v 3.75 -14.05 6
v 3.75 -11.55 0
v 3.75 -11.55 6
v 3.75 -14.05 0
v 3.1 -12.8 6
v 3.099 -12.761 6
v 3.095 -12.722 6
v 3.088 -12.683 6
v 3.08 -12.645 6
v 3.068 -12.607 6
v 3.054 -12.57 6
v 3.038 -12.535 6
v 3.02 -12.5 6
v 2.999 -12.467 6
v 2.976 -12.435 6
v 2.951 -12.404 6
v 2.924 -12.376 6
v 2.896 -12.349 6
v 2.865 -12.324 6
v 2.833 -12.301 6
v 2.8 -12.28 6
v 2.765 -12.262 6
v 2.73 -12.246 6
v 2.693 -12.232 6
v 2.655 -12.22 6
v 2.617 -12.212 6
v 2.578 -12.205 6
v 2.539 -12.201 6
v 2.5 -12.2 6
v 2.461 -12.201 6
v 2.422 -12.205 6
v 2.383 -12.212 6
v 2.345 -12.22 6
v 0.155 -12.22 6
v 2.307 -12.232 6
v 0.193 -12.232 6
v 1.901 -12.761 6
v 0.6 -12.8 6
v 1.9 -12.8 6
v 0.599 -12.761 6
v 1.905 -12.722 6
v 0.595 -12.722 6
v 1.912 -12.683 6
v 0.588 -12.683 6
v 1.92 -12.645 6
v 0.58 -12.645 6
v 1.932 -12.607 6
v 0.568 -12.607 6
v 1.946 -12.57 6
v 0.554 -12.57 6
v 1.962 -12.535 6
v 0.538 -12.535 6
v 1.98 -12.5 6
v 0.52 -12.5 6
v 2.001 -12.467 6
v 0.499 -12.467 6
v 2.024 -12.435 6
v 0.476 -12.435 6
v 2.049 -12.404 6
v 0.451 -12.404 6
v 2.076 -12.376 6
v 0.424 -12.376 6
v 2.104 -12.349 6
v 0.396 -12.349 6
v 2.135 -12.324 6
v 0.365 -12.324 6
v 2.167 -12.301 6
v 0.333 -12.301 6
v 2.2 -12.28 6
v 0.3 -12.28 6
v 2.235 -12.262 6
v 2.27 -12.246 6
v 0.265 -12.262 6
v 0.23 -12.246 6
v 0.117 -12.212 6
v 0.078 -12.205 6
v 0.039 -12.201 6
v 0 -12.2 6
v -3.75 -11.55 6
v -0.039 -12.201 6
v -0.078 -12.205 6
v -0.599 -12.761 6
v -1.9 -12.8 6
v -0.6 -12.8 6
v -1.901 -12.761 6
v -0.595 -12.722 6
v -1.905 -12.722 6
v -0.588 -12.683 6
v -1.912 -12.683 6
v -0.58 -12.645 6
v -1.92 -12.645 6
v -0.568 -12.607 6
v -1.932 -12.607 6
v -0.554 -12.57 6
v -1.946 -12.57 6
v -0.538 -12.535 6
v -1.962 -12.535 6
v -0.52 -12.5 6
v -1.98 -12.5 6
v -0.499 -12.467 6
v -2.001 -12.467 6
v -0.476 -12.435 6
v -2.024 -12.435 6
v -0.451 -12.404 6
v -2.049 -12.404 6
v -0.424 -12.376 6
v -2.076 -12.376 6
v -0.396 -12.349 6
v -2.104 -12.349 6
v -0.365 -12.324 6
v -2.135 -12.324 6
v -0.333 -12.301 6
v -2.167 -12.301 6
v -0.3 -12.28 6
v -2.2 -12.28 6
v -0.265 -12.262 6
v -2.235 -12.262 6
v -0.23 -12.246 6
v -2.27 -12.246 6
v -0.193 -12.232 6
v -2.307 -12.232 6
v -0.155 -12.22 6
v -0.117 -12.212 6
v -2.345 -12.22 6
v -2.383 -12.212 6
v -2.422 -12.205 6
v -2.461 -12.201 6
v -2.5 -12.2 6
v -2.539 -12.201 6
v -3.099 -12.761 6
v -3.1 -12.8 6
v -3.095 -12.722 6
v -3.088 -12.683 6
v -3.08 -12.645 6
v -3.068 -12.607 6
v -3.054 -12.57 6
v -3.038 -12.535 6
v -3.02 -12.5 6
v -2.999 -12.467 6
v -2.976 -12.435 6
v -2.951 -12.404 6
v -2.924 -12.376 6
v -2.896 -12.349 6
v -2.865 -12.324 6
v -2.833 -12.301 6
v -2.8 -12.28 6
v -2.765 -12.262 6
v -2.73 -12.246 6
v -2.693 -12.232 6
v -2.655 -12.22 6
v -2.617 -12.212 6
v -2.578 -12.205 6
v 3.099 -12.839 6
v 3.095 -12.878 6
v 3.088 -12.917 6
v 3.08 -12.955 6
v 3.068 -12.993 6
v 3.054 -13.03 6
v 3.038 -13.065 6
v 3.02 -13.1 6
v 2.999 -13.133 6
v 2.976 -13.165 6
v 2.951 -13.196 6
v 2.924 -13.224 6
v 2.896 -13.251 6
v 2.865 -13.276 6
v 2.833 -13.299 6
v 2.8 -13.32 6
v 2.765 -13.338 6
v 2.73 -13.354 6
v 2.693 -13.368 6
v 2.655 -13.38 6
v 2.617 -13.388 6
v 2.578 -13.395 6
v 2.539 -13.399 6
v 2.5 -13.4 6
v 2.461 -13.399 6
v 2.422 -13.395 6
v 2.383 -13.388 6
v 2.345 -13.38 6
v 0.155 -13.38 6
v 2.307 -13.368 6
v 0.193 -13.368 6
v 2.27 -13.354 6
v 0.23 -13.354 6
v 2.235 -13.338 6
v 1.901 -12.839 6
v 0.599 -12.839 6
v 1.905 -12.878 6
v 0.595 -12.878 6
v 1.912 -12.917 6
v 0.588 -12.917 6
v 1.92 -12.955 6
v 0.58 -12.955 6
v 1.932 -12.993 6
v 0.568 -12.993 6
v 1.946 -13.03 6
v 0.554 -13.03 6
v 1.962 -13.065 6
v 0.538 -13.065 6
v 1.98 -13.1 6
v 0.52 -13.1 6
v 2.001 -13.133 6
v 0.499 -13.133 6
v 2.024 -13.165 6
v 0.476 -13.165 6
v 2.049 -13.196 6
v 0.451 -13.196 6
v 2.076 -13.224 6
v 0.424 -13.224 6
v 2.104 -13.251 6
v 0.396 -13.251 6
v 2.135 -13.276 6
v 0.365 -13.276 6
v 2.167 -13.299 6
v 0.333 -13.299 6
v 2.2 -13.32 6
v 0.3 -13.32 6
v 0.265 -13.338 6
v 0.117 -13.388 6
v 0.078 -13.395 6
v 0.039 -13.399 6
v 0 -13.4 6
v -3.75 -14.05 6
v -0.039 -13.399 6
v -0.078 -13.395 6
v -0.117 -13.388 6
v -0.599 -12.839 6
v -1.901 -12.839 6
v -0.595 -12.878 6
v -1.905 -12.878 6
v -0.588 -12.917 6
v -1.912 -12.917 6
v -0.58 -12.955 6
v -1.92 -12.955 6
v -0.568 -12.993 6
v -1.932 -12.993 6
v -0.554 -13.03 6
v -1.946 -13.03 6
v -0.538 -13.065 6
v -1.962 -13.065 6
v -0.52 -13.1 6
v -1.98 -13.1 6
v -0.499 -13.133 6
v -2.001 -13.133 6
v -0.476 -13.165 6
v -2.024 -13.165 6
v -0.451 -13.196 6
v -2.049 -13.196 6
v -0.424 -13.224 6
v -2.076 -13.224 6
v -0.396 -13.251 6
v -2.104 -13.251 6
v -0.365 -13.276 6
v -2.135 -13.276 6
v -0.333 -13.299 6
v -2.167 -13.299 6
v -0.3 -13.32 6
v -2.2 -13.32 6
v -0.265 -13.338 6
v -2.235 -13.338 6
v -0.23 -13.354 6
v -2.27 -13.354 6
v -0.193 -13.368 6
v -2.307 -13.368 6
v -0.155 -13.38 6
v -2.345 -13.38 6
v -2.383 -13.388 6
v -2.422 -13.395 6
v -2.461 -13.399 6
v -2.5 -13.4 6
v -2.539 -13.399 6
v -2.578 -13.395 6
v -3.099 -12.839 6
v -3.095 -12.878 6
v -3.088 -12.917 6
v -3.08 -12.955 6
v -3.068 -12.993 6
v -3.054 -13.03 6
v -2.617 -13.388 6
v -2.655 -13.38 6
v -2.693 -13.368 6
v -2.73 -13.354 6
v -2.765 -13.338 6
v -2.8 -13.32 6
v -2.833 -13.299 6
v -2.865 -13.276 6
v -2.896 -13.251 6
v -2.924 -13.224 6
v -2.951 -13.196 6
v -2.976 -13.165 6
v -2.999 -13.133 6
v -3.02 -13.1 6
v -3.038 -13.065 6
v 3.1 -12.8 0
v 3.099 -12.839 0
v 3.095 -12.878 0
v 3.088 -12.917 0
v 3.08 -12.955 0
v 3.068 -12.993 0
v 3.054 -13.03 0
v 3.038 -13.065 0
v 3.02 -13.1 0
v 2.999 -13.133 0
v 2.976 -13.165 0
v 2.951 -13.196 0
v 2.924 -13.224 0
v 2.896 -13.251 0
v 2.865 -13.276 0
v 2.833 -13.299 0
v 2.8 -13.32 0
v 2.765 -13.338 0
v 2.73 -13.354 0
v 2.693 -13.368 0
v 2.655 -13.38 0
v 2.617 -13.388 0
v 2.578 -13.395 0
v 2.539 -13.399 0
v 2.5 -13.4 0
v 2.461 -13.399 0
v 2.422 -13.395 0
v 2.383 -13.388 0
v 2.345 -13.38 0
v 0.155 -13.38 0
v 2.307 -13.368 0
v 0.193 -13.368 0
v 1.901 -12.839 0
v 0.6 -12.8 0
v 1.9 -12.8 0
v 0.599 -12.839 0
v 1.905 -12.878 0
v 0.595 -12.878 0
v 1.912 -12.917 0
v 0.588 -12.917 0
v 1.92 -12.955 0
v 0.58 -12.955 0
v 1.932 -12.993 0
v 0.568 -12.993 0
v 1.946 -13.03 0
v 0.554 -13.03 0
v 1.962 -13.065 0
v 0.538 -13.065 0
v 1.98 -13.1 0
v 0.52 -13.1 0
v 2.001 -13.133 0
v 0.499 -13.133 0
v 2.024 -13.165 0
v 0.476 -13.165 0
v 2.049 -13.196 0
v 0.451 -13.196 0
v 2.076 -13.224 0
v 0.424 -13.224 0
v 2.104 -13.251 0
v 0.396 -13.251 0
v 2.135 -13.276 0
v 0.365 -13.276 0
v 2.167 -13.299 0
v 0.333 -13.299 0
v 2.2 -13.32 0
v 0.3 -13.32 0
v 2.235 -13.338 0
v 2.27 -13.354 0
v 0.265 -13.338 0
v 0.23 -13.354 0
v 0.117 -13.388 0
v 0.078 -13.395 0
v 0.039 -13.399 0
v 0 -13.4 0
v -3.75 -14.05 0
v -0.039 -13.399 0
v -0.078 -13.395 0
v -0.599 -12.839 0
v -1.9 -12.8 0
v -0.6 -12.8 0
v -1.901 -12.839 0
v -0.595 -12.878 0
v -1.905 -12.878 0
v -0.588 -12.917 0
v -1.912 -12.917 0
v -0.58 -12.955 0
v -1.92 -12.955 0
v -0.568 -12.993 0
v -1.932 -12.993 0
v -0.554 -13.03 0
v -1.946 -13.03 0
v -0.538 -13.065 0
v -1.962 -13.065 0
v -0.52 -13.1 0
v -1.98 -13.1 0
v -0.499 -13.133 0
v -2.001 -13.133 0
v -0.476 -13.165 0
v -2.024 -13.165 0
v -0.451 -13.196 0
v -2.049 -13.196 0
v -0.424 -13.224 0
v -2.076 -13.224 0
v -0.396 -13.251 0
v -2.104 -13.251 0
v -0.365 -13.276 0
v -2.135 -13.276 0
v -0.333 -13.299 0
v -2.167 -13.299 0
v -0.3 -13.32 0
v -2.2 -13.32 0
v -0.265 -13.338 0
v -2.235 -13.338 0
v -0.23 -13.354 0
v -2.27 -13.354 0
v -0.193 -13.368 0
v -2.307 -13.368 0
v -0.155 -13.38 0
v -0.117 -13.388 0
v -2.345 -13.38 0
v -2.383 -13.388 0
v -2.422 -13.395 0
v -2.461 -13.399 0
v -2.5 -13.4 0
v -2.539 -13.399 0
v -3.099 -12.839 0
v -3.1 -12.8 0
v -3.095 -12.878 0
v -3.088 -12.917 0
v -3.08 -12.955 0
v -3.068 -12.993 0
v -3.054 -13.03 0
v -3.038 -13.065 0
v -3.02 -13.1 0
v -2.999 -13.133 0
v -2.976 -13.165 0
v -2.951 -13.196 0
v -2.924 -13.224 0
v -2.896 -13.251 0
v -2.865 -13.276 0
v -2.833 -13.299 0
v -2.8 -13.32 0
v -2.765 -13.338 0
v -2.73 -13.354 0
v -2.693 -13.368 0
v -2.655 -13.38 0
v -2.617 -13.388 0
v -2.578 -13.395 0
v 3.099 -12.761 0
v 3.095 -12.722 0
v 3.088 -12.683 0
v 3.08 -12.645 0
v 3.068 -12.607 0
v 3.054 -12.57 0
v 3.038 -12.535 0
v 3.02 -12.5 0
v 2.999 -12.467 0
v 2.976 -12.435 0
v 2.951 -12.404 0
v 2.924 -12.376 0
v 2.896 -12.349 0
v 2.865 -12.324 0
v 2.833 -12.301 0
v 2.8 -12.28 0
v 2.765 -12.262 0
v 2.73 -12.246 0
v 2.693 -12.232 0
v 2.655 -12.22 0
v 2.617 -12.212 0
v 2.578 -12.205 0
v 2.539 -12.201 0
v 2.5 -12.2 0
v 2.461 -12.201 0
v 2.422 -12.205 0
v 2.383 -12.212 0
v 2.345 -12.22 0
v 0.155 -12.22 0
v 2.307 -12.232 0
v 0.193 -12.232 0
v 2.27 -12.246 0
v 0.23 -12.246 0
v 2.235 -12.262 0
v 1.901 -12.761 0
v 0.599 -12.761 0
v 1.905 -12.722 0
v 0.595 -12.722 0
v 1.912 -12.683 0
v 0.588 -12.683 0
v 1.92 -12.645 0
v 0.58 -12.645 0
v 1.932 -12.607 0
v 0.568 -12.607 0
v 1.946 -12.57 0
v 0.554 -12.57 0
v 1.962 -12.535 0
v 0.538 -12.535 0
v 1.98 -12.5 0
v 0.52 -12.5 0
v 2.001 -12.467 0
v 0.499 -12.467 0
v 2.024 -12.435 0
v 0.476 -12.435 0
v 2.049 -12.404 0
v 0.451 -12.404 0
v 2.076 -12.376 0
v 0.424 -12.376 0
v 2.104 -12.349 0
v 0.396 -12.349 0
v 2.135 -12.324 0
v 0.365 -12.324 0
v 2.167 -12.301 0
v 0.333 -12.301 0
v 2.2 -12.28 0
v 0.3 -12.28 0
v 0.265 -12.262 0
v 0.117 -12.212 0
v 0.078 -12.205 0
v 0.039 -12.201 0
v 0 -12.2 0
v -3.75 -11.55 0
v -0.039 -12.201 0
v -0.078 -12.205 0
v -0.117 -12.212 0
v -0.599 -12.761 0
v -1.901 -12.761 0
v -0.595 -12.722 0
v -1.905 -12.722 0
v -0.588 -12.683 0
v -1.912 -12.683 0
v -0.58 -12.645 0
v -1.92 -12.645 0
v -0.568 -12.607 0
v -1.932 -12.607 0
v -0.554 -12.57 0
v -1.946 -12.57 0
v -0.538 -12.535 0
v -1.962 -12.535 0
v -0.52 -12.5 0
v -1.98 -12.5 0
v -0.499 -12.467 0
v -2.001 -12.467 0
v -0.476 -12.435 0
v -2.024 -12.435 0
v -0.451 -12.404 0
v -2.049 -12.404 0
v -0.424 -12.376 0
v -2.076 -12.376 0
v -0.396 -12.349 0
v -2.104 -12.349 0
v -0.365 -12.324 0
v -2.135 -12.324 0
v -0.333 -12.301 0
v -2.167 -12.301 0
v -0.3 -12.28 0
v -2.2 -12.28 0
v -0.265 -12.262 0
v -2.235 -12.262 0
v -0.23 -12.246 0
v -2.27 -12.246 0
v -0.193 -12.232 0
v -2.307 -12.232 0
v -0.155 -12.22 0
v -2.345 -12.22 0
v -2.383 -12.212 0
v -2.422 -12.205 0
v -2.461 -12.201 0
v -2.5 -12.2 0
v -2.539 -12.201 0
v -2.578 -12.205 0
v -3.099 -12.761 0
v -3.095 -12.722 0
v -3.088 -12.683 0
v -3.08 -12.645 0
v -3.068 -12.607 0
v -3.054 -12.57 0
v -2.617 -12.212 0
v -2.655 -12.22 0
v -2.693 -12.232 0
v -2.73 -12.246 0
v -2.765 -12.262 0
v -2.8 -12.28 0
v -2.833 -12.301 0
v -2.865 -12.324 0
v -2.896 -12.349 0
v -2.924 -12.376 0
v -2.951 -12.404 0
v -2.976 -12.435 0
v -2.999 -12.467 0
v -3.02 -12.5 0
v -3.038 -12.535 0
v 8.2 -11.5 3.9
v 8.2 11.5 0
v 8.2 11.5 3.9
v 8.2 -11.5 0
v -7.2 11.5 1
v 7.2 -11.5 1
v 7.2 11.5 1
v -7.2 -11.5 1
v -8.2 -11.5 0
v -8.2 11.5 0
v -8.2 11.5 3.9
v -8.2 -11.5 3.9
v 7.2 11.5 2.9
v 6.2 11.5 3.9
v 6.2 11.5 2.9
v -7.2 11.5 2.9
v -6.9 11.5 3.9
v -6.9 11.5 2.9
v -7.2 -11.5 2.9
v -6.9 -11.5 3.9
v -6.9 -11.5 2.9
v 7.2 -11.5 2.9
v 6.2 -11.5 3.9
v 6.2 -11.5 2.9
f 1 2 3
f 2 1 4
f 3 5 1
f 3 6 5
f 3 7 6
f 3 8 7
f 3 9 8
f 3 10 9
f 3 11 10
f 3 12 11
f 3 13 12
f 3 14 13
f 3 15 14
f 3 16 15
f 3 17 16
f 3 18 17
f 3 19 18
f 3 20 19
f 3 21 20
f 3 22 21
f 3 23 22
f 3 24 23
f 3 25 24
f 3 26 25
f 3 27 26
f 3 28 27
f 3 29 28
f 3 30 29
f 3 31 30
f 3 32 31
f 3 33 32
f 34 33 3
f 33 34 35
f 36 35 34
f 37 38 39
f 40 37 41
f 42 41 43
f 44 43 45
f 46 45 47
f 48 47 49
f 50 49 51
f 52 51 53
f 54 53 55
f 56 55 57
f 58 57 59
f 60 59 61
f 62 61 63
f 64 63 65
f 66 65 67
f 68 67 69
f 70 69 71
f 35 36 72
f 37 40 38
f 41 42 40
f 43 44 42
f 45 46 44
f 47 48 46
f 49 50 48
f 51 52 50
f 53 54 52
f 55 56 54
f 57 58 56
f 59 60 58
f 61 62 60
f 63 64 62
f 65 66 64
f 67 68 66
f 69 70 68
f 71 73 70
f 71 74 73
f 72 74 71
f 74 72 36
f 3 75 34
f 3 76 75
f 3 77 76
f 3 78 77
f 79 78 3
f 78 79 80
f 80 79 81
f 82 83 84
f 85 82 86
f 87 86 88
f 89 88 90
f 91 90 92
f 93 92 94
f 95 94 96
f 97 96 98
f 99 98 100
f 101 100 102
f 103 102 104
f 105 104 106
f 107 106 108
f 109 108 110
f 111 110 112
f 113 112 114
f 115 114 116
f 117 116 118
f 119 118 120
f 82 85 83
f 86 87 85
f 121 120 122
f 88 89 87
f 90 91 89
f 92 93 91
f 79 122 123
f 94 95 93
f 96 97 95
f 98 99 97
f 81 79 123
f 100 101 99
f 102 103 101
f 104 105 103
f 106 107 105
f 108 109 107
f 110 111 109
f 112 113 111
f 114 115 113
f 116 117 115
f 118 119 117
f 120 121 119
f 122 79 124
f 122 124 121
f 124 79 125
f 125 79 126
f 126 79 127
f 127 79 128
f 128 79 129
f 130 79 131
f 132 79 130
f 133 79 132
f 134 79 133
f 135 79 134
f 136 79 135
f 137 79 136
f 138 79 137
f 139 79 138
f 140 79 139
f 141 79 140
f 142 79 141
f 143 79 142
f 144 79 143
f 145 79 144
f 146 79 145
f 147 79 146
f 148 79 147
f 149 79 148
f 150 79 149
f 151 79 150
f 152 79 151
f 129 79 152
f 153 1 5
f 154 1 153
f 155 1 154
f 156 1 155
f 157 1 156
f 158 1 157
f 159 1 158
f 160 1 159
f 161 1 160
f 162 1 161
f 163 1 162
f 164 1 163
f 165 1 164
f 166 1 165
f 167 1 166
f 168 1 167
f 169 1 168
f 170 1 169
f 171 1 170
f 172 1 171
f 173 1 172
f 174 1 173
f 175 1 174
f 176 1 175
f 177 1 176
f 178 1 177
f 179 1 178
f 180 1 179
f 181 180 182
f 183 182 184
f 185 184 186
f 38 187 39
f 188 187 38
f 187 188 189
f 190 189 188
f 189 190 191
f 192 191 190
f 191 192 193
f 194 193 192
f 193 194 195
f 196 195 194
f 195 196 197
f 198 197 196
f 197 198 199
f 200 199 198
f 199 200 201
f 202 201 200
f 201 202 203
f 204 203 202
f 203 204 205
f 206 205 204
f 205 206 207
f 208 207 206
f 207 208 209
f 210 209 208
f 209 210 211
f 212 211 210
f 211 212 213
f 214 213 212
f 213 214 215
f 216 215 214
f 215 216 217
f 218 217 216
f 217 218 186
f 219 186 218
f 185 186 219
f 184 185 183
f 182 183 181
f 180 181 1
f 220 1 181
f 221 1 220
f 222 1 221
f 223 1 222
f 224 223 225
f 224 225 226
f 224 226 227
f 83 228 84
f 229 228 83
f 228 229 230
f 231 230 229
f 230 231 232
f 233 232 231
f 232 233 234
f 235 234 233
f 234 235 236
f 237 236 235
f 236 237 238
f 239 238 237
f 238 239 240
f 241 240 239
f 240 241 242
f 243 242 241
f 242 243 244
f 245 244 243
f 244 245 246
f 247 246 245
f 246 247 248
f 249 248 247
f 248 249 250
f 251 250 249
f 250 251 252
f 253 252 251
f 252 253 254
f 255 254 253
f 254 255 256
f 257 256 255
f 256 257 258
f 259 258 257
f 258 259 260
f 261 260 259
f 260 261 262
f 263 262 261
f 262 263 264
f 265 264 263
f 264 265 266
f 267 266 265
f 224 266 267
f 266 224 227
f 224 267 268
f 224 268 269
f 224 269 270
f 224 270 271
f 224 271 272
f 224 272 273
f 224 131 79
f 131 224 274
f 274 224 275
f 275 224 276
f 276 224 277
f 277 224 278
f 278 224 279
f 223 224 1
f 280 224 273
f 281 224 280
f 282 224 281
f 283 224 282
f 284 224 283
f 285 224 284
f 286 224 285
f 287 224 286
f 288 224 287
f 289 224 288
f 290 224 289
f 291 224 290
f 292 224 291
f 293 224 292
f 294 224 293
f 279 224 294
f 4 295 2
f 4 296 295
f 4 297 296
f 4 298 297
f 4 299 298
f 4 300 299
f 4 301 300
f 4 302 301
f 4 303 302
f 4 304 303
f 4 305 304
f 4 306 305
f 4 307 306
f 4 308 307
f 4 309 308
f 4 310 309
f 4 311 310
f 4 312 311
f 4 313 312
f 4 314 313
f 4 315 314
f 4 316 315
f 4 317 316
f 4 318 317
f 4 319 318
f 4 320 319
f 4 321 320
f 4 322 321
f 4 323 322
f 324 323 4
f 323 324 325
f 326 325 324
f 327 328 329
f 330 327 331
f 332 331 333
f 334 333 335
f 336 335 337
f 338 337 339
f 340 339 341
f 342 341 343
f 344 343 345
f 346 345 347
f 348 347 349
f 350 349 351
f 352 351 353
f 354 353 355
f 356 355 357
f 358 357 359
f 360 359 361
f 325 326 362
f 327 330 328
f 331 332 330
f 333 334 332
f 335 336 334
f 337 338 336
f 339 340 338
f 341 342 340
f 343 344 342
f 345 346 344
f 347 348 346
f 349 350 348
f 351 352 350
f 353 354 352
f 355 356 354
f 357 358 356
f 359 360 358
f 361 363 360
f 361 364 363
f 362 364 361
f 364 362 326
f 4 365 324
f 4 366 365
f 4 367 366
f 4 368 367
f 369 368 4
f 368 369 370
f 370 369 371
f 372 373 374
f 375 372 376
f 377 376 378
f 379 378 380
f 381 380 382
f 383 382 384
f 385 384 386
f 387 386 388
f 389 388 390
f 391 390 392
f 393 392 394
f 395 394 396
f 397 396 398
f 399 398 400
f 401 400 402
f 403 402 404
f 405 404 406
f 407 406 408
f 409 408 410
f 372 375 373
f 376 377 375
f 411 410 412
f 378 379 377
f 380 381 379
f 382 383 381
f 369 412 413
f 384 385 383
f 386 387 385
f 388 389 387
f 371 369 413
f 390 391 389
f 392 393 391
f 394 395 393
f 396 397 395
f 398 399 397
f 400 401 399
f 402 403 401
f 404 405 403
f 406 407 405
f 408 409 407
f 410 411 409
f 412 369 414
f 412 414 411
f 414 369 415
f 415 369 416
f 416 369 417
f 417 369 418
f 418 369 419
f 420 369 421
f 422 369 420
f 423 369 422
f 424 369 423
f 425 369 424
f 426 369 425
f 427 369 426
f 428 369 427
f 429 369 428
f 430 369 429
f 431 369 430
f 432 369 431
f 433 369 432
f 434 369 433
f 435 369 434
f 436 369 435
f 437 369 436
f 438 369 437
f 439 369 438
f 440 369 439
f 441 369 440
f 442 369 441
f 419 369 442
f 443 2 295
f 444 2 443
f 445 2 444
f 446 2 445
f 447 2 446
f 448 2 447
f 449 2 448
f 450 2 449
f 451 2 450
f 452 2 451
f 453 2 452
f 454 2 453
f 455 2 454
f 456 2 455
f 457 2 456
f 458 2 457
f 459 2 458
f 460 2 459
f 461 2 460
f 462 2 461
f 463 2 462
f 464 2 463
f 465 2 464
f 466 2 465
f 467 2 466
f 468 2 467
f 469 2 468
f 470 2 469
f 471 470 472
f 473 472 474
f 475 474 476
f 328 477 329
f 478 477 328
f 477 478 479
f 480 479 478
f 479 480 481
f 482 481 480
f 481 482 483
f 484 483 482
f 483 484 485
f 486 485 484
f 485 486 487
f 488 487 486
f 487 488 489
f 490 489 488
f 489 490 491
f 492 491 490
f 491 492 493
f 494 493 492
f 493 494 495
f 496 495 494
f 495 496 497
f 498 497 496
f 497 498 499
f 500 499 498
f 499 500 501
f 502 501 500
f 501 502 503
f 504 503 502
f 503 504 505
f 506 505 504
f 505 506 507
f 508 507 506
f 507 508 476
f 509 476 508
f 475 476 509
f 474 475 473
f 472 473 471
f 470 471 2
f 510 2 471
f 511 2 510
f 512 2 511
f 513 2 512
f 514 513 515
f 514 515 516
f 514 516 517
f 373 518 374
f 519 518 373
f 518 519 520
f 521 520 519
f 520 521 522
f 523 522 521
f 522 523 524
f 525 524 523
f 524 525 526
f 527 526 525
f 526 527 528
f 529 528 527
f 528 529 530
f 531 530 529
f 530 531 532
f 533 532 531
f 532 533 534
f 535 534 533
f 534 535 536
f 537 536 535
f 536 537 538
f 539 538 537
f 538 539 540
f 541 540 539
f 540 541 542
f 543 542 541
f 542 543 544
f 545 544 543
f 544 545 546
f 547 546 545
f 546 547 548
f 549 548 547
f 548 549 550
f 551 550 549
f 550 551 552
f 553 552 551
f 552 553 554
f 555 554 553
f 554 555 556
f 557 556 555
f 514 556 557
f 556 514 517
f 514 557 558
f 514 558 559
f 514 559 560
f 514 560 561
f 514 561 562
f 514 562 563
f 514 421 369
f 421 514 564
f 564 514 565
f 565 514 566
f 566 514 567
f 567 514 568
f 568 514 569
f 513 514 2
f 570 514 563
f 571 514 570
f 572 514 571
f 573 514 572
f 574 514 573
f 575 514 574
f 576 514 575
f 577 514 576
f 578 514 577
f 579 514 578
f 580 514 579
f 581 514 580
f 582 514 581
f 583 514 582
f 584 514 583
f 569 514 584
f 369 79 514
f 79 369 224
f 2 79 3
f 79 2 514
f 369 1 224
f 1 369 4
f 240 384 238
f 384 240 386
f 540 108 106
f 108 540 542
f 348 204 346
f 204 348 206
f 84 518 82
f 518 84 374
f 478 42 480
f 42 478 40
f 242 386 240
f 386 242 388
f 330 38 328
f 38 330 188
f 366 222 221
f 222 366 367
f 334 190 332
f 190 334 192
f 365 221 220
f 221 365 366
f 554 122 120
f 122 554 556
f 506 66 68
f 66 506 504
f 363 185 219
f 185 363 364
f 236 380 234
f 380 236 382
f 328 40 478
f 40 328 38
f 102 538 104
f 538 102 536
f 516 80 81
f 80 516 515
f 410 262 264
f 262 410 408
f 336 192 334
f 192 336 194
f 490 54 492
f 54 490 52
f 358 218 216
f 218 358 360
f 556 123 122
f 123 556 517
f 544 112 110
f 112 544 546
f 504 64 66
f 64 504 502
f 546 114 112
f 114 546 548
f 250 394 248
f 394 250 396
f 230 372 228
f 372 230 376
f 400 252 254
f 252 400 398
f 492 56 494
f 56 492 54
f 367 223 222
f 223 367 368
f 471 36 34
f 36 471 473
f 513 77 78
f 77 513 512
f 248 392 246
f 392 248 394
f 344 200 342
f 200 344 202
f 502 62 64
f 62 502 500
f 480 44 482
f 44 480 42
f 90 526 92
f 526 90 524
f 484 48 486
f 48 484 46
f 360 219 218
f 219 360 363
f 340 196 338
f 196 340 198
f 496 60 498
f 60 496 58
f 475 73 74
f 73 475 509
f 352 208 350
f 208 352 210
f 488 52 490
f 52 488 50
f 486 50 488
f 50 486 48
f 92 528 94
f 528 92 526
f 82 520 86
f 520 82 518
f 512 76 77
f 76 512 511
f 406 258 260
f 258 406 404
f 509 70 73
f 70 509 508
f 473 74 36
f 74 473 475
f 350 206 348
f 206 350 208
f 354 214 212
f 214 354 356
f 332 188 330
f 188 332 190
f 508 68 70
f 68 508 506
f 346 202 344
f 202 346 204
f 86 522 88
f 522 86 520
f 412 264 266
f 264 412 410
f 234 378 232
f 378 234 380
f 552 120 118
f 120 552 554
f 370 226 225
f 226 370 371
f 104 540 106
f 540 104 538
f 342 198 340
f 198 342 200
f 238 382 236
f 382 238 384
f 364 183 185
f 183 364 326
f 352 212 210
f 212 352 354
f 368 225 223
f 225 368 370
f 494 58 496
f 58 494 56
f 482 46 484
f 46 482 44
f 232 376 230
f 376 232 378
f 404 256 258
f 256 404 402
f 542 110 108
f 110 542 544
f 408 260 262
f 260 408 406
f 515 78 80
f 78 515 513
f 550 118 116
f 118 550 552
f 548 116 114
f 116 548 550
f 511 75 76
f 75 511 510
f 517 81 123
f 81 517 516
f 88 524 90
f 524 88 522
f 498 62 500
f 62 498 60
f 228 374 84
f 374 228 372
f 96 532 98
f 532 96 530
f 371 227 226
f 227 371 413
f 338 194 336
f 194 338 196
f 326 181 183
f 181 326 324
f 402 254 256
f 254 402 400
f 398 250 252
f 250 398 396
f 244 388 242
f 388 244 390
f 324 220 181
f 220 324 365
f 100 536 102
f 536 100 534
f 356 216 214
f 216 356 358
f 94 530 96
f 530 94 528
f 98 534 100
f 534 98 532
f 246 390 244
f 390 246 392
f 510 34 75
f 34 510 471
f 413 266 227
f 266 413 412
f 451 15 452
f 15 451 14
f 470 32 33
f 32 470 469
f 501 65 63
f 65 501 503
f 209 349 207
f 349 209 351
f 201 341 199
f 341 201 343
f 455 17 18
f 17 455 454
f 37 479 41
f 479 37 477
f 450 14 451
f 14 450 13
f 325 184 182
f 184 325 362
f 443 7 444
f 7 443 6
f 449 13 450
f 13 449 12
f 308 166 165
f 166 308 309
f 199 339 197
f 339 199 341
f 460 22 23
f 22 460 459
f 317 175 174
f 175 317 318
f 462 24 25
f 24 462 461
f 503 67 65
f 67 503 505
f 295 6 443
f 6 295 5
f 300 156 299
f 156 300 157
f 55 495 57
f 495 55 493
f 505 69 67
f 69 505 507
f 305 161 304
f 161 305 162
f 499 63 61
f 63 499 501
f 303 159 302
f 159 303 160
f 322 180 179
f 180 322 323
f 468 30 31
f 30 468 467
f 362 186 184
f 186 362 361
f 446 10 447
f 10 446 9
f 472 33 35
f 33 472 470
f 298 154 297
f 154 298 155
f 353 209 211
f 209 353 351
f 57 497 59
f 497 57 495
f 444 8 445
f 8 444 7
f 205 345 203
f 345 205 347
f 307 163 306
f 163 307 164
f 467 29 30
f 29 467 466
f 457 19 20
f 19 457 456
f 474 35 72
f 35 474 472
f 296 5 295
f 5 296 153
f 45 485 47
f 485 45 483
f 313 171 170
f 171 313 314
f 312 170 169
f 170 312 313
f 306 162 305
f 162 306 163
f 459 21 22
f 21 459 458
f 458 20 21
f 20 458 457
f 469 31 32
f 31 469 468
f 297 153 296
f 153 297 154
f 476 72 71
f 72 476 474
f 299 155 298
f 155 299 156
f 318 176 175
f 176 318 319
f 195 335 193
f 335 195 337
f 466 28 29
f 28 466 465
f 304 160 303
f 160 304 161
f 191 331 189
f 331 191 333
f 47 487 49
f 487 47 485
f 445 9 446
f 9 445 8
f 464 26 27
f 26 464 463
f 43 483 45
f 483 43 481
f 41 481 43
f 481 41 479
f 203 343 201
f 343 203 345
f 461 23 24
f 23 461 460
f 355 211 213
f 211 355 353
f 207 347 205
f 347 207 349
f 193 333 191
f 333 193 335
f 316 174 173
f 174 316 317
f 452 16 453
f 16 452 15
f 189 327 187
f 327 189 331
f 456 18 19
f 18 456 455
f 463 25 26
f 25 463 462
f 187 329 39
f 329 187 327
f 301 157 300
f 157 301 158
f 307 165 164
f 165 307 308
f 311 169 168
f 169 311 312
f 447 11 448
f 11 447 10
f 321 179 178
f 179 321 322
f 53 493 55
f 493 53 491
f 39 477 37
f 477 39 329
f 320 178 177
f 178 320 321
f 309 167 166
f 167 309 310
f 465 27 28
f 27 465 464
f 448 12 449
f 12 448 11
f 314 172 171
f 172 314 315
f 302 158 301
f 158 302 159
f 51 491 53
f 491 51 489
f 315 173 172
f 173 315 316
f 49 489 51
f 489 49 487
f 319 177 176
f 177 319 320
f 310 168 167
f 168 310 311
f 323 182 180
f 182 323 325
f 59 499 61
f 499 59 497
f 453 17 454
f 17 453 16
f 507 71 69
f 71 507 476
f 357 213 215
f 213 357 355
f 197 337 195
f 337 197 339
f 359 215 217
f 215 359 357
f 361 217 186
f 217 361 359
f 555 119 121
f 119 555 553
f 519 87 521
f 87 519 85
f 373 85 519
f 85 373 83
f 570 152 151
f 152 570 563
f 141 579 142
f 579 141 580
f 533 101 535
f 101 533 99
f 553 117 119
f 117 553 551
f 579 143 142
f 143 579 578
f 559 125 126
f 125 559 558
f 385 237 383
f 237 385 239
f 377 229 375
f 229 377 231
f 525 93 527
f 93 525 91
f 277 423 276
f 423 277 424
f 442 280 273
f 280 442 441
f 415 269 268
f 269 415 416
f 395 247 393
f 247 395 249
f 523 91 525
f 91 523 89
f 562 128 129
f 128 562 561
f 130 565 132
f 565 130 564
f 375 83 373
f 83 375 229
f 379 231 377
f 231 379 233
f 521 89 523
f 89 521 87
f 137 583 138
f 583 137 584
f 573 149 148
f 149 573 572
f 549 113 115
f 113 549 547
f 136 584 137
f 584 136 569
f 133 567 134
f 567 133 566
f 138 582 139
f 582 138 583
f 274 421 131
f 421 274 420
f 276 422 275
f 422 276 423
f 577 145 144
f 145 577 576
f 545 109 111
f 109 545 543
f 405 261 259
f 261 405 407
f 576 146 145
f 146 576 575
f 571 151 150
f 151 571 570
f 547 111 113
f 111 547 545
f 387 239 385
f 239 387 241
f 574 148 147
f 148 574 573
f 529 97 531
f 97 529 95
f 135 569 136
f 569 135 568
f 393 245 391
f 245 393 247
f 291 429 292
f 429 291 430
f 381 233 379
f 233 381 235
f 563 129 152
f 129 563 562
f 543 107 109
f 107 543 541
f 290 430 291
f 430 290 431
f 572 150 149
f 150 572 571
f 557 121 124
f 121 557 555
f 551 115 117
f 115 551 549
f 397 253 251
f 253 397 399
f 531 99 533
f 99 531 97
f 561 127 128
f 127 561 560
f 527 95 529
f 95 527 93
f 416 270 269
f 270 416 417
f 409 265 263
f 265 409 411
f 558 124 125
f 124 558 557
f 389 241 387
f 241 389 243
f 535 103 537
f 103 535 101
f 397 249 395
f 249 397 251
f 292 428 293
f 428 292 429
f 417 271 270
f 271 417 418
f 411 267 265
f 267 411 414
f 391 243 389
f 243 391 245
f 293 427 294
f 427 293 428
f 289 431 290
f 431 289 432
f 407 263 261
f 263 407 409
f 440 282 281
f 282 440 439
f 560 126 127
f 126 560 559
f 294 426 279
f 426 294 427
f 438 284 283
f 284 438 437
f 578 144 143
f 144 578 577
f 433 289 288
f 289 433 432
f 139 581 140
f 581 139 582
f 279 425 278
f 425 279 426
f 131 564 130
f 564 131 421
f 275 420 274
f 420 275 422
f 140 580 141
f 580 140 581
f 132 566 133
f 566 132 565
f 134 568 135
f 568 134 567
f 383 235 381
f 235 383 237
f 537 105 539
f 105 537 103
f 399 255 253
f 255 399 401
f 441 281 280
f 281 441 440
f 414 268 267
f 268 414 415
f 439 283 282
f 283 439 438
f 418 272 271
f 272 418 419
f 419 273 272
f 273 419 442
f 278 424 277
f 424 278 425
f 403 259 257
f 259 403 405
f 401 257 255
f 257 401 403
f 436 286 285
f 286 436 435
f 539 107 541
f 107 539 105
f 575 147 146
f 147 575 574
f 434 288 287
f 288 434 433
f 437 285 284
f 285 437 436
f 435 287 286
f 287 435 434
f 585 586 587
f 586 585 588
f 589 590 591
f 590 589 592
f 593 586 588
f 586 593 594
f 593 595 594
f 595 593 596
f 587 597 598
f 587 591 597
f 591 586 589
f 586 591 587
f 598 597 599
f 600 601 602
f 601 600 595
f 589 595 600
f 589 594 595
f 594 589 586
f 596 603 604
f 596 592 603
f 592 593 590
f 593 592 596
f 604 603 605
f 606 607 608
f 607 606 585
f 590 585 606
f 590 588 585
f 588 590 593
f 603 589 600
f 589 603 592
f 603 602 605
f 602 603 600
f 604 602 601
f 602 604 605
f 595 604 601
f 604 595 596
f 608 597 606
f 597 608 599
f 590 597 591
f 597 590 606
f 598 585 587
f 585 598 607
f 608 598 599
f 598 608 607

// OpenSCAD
// Show
gy91();


// Variables
$fn = 96;
PIN_RADIUS = 0.6; // Radius for Pi Pins /0.56 for a thight fit
WIDTH = 16.4;
LENGTH = 23;
THICKNESS = 1;
HOLDER_HEIGHT = 7;

// Main module

module gy91(){
    // Ground plate
    translate([0,0,0.5])
        cube([WIDTH, LENGTH, THICKNESS], center=true);

    // Sides
    translate([-7.7, 0, 1.9])
        cube([1, LENGTH, 2], center=true);
    translate([-7.55, 0, 3.4])
        cube([1.3, LENGTH, 1], center=true);
        
    translate([7.7, 0, 1.9])
        cube([1, LENGTH, 2], center=true);
    translate([7.2, 0, 3.4])
        cube([2, LENGTH, 1], center=true);
        
    // Pin holder
    difference() {
        translate([0, -12.8, 3])
            color([0, 1, 0])   
                cube([7.5, 2.5, 6], center=true);

        // Pin holes
        translate([0, -12.8, -0.51])
            cylinder(r=PIN_RADIUS, h=HOLDER_HEIGHT);
        translate([2.5, -12.8, -0.51])
            cylinder(r=PIN_RADIUS, h=HOLDER_HEIGHT);
        translate([-2.5, -12.8, -0.51])
            cylinder(r=PIN_RADIUS, h=HOLDER_HEIGHT);
    }
}
